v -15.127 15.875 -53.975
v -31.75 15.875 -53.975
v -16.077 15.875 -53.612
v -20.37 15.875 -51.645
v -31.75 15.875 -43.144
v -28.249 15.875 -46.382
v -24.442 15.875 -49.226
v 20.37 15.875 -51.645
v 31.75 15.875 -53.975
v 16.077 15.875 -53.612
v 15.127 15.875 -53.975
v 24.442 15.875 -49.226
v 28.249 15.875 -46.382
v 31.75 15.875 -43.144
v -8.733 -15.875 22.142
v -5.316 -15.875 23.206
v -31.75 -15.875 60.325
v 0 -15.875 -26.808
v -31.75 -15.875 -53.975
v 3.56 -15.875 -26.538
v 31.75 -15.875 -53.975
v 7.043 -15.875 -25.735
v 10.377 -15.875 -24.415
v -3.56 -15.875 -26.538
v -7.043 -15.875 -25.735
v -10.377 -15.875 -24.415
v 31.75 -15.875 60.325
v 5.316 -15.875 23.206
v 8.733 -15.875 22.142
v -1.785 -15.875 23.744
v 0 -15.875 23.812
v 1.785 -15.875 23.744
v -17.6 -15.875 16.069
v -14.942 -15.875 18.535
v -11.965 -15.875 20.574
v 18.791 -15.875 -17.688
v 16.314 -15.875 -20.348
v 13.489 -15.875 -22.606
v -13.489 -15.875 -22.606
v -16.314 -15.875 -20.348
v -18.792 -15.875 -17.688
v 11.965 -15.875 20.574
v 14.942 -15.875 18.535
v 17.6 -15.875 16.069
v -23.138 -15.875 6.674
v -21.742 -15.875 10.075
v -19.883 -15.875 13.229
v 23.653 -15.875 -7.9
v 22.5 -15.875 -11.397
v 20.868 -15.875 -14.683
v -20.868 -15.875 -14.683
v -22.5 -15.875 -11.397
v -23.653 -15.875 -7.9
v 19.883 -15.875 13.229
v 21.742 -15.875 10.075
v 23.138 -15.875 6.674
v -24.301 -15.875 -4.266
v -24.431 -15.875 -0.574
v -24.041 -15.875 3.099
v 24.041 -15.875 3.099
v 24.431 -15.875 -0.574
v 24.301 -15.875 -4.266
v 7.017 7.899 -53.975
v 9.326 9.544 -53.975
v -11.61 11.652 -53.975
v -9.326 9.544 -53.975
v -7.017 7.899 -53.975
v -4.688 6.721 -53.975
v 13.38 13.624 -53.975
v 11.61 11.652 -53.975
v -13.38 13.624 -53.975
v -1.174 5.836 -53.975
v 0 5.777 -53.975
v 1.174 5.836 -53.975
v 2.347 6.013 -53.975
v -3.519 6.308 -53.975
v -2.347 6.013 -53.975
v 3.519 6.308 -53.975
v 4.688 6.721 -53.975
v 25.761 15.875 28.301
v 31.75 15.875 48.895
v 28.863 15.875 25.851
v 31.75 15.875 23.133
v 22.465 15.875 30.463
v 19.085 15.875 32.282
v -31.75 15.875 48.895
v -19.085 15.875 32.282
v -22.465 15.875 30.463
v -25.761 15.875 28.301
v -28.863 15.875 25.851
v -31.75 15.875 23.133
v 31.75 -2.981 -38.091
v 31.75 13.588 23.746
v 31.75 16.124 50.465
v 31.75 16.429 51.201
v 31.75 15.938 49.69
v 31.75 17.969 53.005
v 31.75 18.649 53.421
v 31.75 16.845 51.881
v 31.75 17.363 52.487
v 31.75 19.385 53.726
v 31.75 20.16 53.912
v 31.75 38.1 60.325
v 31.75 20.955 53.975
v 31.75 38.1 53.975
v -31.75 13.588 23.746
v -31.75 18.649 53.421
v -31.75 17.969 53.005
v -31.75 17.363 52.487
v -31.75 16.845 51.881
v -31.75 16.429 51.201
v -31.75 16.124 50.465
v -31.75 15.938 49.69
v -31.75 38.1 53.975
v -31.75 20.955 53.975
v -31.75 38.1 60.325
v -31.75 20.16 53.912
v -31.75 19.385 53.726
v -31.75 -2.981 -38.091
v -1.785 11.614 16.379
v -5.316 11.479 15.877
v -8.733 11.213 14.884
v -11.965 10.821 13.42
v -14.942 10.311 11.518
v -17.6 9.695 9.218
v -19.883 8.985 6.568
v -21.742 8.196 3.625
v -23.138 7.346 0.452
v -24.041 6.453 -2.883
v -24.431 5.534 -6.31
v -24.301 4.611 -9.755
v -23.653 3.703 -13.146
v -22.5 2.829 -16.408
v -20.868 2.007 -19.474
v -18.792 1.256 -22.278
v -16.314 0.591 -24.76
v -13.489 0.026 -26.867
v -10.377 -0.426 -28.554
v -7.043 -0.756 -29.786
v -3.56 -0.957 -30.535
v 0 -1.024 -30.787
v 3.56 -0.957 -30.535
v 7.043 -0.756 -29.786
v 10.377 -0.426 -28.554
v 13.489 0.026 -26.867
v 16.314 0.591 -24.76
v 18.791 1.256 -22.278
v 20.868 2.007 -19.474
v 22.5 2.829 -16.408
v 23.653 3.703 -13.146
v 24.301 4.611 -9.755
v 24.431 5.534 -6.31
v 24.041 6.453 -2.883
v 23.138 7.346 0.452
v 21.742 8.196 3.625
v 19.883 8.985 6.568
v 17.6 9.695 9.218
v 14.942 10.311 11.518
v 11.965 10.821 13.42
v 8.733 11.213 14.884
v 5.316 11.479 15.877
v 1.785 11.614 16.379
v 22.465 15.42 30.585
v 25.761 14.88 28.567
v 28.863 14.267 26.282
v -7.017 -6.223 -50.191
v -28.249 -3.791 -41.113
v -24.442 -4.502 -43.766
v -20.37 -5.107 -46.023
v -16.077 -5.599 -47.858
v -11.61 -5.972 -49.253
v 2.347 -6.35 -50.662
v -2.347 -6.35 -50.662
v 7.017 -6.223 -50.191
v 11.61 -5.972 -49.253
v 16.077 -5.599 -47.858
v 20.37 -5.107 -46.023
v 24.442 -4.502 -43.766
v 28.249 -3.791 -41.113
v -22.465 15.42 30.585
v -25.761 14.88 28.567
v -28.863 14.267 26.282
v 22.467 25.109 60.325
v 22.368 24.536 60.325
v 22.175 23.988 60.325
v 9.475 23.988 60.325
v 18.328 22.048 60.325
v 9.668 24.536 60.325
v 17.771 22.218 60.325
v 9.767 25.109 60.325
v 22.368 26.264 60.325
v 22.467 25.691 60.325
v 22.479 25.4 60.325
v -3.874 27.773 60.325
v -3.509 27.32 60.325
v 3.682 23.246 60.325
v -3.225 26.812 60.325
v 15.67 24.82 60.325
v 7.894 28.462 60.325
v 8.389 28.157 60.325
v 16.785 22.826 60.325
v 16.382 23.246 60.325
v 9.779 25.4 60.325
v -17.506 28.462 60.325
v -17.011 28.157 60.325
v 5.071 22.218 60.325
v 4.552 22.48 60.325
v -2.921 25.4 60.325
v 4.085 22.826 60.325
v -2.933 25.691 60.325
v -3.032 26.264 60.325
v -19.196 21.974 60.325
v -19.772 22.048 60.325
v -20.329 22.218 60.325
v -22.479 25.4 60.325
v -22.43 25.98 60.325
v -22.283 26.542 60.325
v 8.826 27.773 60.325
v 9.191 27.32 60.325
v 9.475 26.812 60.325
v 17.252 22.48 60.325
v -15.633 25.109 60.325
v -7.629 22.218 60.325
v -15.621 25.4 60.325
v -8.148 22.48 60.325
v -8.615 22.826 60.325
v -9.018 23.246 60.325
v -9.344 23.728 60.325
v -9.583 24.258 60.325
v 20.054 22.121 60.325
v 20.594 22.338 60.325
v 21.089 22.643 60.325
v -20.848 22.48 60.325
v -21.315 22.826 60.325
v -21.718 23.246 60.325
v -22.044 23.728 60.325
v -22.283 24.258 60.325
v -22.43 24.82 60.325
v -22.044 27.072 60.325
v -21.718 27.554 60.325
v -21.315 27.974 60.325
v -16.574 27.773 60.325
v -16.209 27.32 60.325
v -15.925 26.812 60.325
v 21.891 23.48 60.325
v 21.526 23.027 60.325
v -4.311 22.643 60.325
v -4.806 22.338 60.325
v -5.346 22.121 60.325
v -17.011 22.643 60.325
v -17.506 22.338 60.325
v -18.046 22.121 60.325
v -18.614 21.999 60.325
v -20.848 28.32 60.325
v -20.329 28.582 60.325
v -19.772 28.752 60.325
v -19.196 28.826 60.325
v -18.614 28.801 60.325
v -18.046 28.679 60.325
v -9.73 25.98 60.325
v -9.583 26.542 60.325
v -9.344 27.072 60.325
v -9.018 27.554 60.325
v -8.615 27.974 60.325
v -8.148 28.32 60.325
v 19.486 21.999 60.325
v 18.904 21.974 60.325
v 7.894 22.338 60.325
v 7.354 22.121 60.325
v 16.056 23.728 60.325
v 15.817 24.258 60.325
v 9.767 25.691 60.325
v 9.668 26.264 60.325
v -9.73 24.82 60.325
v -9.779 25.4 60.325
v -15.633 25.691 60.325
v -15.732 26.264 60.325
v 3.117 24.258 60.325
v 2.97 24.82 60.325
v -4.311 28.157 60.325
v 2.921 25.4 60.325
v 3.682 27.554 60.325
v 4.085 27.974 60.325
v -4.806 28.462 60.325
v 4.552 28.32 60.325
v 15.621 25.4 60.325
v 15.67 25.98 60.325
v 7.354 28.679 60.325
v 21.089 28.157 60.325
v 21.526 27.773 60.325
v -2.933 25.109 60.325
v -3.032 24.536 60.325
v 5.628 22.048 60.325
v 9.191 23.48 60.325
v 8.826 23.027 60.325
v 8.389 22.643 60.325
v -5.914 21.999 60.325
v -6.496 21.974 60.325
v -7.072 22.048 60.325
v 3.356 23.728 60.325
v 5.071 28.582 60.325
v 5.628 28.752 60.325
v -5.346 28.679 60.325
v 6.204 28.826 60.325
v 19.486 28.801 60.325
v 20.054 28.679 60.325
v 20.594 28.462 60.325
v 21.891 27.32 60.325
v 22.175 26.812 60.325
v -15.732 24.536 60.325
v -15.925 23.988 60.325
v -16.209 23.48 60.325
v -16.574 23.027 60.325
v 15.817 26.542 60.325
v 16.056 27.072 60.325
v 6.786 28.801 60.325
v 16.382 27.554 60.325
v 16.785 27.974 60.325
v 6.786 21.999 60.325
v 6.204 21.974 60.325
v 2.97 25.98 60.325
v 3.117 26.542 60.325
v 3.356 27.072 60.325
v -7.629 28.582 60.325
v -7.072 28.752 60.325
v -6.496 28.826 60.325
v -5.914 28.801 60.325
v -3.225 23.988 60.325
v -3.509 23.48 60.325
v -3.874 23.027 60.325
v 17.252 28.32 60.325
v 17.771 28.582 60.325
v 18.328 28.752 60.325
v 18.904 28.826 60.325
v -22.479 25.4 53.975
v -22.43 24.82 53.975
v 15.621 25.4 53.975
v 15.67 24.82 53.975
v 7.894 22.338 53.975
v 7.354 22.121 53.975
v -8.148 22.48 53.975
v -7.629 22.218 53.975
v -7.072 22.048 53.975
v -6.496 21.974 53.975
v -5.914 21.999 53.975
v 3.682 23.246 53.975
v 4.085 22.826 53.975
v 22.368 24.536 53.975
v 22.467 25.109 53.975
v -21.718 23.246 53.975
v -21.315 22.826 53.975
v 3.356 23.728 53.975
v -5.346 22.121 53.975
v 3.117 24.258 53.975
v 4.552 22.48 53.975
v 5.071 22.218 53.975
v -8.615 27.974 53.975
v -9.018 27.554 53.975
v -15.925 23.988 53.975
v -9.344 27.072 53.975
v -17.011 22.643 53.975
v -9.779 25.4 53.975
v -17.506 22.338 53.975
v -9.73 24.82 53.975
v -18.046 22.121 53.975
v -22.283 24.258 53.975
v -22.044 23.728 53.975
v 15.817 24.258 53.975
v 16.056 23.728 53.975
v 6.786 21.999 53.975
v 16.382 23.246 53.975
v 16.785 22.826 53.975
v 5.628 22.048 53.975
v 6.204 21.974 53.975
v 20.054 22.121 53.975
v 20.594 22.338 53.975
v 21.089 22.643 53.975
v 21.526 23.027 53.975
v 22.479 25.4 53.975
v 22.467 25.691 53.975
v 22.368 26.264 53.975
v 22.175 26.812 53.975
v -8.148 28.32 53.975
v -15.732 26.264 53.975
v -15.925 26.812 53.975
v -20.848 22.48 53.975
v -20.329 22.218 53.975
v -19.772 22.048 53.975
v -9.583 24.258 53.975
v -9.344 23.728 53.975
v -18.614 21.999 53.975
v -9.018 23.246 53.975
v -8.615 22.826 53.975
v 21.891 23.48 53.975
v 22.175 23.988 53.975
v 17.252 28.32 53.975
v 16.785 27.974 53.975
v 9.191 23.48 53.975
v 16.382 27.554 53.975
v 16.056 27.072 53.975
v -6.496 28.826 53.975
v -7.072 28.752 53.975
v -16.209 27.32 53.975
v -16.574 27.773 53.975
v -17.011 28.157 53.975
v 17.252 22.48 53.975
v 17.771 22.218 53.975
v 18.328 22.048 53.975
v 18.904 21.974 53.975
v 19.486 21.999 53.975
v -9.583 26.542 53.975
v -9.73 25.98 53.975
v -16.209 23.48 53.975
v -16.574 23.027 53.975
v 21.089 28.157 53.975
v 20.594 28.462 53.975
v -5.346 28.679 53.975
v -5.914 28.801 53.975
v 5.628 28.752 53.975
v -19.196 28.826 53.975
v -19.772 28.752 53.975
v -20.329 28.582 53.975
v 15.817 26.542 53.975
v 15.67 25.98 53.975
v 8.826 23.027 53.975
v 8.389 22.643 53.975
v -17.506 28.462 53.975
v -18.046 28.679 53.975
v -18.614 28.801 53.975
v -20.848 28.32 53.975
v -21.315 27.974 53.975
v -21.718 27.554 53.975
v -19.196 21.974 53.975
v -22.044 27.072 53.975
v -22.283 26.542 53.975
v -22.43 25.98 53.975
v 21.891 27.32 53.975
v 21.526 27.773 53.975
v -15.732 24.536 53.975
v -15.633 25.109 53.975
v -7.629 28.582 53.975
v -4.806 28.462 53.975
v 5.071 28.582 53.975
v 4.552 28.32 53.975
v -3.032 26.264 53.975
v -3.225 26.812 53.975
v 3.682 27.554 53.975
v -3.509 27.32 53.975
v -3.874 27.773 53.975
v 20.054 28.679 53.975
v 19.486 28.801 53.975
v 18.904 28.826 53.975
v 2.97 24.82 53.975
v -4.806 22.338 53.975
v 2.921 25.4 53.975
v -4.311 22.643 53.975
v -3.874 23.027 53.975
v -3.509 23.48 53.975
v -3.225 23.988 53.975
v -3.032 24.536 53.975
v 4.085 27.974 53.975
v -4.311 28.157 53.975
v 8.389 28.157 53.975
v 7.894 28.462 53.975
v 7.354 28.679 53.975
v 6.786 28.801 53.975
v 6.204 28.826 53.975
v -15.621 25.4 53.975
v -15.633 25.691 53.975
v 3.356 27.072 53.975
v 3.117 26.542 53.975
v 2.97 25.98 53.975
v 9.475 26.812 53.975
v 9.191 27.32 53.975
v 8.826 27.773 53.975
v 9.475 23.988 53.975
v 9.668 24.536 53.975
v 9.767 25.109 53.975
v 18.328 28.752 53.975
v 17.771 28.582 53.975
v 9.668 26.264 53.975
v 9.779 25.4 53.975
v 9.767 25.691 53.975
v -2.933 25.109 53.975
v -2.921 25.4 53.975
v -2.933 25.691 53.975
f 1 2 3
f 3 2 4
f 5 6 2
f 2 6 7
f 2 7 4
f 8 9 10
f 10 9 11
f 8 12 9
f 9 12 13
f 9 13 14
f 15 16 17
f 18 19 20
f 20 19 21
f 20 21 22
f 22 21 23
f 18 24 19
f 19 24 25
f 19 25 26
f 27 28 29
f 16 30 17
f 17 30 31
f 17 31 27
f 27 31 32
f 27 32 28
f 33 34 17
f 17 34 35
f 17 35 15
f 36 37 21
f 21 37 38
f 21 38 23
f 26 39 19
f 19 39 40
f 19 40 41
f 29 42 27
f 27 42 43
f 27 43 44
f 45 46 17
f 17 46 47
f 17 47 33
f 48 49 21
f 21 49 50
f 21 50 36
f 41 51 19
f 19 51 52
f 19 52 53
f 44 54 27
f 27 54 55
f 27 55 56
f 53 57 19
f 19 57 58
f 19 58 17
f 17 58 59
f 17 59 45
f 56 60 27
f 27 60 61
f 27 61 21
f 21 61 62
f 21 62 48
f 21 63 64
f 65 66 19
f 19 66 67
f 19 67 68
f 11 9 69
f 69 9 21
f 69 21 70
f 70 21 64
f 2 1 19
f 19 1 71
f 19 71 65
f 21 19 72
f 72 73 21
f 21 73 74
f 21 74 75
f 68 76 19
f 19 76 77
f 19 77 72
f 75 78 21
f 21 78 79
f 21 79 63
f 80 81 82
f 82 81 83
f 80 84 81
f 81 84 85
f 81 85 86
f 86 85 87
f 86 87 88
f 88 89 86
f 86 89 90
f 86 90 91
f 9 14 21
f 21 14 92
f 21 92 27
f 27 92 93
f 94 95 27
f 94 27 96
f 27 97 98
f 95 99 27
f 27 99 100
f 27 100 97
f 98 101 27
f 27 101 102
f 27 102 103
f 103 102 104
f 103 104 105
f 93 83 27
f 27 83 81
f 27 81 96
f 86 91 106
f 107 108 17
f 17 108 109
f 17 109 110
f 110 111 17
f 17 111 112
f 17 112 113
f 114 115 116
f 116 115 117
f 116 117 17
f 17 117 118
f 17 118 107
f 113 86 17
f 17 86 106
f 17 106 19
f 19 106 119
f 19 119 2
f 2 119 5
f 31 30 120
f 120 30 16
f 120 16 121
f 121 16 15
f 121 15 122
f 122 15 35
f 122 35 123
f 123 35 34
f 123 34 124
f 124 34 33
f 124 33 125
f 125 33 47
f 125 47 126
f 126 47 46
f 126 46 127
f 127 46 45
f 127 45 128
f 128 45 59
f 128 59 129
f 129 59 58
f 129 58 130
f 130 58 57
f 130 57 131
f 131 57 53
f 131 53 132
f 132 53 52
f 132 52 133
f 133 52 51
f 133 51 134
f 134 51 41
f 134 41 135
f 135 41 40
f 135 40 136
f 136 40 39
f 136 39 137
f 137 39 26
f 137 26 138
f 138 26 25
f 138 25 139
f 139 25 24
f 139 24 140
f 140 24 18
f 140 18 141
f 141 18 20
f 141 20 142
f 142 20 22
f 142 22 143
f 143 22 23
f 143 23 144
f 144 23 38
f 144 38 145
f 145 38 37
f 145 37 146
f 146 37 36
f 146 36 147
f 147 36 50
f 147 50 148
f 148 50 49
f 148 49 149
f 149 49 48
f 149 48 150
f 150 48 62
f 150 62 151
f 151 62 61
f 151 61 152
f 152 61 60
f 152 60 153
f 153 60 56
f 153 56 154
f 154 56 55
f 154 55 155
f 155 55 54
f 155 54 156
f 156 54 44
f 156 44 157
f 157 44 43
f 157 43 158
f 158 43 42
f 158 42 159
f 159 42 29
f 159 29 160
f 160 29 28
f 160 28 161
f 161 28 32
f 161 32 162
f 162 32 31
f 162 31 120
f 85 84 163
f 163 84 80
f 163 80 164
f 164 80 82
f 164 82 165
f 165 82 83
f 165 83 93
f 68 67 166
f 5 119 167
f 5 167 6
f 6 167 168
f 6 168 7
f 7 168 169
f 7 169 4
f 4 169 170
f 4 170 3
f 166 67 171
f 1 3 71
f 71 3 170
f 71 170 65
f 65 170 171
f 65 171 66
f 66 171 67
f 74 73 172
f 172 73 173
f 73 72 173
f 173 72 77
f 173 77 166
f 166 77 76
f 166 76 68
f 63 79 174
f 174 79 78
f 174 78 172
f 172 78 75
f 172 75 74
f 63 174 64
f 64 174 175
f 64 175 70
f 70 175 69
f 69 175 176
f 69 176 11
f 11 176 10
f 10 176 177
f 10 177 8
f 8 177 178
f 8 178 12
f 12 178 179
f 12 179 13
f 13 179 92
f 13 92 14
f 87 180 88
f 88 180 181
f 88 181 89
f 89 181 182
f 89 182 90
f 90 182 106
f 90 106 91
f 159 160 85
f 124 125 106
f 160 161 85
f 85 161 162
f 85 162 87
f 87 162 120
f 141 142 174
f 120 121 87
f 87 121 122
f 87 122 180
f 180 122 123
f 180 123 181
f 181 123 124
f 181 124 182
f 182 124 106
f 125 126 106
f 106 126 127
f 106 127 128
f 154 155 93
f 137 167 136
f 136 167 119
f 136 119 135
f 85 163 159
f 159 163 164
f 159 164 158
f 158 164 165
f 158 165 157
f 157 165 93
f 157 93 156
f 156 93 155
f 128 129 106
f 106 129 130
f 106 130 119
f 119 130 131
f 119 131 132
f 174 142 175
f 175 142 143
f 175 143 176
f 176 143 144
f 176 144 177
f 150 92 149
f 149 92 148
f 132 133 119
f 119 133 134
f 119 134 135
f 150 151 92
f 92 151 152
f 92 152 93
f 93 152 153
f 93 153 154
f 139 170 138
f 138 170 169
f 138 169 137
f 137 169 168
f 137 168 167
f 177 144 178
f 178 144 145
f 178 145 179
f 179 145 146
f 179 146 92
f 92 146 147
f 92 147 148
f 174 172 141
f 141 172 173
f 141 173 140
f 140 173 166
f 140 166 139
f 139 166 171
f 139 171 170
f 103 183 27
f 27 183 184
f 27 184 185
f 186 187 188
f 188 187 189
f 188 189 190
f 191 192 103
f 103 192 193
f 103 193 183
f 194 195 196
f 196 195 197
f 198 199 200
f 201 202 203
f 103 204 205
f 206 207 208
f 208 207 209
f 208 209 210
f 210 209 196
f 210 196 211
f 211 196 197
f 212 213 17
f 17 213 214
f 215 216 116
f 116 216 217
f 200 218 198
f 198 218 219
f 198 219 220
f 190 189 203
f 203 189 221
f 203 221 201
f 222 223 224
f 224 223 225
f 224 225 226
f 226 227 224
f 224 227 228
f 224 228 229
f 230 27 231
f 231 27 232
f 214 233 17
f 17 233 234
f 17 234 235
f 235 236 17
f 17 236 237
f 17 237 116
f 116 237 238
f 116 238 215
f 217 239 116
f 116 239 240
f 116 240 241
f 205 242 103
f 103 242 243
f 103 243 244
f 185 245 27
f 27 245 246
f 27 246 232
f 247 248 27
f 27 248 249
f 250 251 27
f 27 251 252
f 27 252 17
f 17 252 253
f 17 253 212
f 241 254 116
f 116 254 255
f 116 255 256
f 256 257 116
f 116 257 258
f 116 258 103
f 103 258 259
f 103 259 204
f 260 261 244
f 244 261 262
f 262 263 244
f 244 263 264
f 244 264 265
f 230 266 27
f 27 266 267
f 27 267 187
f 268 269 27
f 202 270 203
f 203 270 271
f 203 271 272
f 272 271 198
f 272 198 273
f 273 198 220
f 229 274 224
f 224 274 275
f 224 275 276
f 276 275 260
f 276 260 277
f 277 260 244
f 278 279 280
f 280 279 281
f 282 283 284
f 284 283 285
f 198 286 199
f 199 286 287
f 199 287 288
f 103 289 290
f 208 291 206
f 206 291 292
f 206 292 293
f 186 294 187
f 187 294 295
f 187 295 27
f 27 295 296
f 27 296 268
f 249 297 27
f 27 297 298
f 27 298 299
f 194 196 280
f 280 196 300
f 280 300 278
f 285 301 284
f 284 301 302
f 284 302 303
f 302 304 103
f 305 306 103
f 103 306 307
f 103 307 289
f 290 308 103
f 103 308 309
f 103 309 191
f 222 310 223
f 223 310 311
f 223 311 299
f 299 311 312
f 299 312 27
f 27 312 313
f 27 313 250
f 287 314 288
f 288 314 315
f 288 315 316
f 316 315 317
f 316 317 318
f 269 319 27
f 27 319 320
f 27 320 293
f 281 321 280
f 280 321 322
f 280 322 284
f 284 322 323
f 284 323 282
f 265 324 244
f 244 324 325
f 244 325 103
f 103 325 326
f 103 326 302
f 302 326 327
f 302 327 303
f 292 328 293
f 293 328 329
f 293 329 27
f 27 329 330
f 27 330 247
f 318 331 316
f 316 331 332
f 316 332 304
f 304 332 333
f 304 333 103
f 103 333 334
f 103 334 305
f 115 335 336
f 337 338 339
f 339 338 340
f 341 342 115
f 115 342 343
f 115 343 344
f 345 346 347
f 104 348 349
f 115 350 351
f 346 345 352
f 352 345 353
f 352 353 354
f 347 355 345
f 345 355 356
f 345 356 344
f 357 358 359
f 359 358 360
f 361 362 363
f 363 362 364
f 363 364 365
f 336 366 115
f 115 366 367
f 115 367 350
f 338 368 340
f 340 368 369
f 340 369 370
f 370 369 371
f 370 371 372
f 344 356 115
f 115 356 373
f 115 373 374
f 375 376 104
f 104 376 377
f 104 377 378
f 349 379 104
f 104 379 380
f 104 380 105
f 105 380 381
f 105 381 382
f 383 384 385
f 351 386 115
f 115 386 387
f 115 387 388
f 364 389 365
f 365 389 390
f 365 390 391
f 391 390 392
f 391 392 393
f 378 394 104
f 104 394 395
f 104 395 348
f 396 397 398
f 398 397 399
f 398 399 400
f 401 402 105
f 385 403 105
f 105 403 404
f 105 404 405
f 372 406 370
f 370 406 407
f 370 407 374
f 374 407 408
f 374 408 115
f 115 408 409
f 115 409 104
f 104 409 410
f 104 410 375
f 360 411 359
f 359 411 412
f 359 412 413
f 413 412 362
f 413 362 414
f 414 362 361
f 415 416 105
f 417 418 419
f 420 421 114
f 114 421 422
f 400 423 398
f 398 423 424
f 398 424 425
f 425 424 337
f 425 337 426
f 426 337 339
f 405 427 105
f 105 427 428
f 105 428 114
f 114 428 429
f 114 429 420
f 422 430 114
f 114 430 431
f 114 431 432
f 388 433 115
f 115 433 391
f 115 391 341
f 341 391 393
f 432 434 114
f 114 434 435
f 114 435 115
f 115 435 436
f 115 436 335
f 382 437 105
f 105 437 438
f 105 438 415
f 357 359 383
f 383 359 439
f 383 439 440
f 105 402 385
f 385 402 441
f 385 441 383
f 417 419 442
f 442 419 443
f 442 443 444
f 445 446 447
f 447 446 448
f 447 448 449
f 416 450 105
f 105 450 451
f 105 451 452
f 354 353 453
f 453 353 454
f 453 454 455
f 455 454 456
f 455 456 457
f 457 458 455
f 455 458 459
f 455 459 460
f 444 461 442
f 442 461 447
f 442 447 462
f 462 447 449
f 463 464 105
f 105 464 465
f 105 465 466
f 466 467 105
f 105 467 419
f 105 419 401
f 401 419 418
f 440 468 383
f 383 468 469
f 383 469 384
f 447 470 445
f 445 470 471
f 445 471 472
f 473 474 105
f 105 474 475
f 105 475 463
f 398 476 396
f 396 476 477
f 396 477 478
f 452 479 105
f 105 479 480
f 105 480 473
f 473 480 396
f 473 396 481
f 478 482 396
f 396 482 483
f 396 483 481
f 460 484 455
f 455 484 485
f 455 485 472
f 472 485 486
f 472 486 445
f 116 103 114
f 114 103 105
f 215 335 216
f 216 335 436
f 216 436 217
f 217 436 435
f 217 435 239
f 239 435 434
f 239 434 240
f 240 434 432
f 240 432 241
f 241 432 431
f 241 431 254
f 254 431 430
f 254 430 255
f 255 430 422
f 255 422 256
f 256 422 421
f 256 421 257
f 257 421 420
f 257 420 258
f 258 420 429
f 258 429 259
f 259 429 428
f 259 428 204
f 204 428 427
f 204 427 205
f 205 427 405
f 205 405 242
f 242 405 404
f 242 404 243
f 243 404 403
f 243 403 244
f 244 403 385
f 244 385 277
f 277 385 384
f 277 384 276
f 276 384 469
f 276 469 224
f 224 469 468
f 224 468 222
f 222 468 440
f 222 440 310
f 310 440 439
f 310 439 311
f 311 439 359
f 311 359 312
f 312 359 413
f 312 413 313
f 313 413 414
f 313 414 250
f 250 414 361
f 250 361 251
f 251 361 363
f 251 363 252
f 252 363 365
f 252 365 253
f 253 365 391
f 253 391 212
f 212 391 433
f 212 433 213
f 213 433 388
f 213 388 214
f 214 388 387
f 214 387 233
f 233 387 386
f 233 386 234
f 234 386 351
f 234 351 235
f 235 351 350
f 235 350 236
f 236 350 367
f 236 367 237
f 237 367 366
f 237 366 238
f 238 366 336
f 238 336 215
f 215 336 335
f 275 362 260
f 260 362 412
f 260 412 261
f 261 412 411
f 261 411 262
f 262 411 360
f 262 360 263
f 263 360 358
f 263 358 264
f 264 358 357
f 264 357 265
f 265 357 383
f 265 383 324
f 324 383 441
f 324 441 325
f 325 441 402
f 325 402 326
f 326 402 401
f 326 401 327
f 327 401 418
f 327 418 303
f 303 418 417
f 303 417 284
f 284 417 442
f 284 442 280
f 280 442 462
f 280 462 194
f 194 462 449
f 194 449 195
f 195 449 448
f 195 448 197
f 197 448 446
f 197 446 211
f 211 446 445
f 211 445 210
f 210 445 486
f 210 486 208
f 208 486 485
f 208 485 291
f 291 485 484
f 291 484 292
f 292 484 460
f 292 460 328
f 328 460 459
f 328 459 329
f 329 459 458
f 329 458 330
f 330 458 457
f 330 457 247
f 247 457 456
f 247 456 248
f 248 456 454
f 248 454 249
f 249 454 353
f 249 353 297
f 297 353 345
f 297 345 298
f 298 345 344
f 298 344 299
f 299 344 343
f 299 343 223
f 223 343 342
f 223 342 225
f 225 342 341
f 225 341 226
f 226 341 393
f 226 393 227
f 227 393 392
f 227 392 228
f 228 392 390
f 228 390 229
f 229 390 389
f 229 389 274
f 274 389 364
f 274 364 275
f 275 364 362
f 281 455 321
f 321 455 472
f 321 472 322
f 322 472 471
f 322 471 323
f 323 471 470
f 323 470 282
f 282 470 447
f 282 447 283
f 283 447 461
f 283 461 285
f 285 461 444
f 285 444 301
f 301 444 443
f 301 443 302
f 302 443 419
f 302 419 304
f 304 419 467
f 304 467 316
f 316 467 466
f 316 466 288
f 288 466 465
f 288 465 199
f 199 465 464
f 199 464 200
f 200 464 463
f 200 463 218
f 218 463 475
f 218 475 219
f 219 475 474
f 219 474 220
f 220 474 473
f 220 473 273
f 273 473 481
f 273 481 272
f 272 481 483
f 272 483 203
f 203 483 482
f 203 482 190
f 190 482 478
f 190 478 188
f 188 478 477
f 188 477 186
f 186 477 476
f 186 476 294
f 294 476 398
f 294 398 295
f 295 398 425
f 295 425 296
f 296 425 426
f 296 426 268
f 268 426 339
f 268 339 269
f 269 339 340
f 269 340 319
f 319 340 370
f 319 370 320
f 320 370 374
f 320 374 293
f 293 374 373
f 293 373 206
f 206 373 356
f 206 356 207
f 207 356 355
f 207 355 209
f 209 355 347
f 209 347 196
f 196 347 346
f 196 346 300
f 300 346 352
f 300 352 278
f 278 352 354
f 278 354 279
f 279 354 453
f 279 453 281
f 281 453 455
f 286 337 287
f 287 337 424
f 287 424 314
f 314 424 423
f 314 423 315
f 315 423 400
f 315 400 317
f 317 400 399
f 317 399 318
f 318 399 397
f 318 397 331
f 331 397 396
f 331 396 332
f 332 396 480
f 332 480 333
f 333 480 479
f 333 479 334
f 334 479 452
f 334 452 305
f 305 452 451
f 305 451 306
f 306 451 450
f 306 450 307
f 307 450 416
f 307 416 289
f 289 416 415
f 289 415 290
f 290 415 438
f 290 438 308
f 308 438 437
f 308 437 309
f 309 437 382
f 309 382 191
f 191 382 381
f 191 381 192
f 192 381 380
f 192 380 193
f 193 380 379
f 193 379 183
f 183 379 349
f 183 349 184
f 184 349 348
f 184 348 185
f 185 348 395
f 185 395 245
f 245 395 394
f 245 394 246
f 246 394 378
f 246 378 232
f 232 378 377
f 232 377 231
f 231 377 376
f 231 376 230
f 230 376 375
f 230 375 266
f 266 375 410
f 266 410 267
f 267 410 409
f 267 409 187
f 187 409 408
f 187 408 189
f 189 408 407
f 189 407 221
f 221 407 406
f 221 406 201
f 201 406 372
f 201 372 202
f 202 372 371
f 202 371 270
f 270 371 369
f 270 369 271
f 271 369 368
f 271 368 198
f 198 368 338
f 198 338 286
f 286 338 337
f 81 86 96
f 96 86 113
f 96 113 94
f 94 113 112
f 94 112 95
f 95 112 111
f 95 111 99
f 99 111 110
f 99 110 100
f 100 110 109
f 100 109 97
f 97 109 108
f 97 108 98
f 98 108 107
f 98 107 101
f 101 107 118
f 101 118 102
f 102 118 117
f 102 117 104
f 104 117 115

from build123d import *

# Parameters (mm, degrees)
SKETCH1_W               = 107.95
SKETCH1_H               = 31.75
BOSS_EXTRUDE1_DEPTH     = 31.75
SKETCH3_W               = 63.5
SKETCH3_H               = 76.2
SKETCH3_R               = 3.429
BOSS_EXTRUDE2_DEPTH     = 6.35
FILLET1_R               = 5.08
CUT_EXTRUDE1_DEPTH      = 119.79762203
CUT_EXTRUDE1_DEPTH_BACK = 119.79762203
SKETCH4_W               = 78.111463513
SKETCH4_H               = 26.600111828


with BuildPart() as part:
    # Sketch1 → Boss-Extrude1 (new, symmetric)
    with BuildSketch(Plane(origin=(0, 0, 0), x_dir=(0, 0, -1), z_dir=(1, 0, 0))):
        Rectangle(SKETCH1_W, SKETCH1_H)
    extrude(amount=BOSS_EXTRUDE1_DEPTH, both=True)

    # Sketch2 → Cut-Revolve1 (revolve, cut)
    with BuildSketch(Plane(origin=(0, 0, 0), x_dir=(0, 0, -1), z_dir=(1, 0, 0))):
        Polygon((30.787113889, -1.024256513), (21.709471638, -34.902478605), (-1.905, -28.575), (15.934173595, 38.001702221), (59.482939473, 26.332845573), (50.721408129, -6.365634557), align=None)
    revolve(axis=Axis((0, -21.465443212, 0), (0, 0.9659258262890701, -0.2588190451025143)), mode=Mode.SUBTRACT)

    # Sketch3 → Boss-Extrude2 (add)
    with BuildSketch(Plane.XY.offset(53.975)):
        Rectangle(SKETCH3_W, SKETCH3_H)
        with Locations((-19.05, 25.4)):
            Circle(SKETCH3_R, mode=Mode.SUBTRACT)
        with Locations((-6.35, 25.4)):
            Circle(SKETCH3_R, mode=Mode.SUBTRACT)
        with Locations((6.35, 25.4)):
            Circle(SKETCH3_R, mode=Mode.SUBTRACT)
        with Locations((19.05, 25.4)):
            Circle(SKETCH3_R, mode=Mode.SUBTRACT)
        with Locations((-6.35, -25.4)):
            Circle(SKETCH3_R, mode=Mode.SUBTRACT)
        with Locations((6.35, -25.4)):
            Circle(SKETCH3_R, mode=Mode.SUBTRACT)
        with Locations((19.05, -25.4)):
            Circle(SKETCH3_R, mode=Mode.SUBTRACT)
        with Locations((-19.05, -25.4)):
            Circle(SKETCH3_R, mode=Mode.SUBTRACT)
    extrude(amount=BOSS_EXTRUDE2_DEPTH)

    # Fillet1
    fillet1_edges = [part.edges().sort_by_distance(p)[0] for p in [
        (0, 15.875, 53.975),
        (0, -15.875, 53.975),
    ]]
    fillet(fillet1_edges, radius=FILLET1_R)

    # Sketch4 → Cut-Extrude1 (cut, two sides: drawn at the far end of the back side and taken through both)
    with BuildSketch(Plane(origin=(0, 0, 53.975), x_dir=(-1, 0, 0), z_dir=(0, 0, -1)).offset(-CUT_EXTRUDE1_DEPTH_BACK)):
        with Locations((-0.534278136, -29.175055914)):
            Rectangle(SKETCH4_W, SKETCH4_H)
    extrude(amount=CUT_EXTRUDE1_DEPTH + CUT_EXTRUDE1_DEPTH_BACK, mode=Mode.SUBTRACT)


solid = part.part
